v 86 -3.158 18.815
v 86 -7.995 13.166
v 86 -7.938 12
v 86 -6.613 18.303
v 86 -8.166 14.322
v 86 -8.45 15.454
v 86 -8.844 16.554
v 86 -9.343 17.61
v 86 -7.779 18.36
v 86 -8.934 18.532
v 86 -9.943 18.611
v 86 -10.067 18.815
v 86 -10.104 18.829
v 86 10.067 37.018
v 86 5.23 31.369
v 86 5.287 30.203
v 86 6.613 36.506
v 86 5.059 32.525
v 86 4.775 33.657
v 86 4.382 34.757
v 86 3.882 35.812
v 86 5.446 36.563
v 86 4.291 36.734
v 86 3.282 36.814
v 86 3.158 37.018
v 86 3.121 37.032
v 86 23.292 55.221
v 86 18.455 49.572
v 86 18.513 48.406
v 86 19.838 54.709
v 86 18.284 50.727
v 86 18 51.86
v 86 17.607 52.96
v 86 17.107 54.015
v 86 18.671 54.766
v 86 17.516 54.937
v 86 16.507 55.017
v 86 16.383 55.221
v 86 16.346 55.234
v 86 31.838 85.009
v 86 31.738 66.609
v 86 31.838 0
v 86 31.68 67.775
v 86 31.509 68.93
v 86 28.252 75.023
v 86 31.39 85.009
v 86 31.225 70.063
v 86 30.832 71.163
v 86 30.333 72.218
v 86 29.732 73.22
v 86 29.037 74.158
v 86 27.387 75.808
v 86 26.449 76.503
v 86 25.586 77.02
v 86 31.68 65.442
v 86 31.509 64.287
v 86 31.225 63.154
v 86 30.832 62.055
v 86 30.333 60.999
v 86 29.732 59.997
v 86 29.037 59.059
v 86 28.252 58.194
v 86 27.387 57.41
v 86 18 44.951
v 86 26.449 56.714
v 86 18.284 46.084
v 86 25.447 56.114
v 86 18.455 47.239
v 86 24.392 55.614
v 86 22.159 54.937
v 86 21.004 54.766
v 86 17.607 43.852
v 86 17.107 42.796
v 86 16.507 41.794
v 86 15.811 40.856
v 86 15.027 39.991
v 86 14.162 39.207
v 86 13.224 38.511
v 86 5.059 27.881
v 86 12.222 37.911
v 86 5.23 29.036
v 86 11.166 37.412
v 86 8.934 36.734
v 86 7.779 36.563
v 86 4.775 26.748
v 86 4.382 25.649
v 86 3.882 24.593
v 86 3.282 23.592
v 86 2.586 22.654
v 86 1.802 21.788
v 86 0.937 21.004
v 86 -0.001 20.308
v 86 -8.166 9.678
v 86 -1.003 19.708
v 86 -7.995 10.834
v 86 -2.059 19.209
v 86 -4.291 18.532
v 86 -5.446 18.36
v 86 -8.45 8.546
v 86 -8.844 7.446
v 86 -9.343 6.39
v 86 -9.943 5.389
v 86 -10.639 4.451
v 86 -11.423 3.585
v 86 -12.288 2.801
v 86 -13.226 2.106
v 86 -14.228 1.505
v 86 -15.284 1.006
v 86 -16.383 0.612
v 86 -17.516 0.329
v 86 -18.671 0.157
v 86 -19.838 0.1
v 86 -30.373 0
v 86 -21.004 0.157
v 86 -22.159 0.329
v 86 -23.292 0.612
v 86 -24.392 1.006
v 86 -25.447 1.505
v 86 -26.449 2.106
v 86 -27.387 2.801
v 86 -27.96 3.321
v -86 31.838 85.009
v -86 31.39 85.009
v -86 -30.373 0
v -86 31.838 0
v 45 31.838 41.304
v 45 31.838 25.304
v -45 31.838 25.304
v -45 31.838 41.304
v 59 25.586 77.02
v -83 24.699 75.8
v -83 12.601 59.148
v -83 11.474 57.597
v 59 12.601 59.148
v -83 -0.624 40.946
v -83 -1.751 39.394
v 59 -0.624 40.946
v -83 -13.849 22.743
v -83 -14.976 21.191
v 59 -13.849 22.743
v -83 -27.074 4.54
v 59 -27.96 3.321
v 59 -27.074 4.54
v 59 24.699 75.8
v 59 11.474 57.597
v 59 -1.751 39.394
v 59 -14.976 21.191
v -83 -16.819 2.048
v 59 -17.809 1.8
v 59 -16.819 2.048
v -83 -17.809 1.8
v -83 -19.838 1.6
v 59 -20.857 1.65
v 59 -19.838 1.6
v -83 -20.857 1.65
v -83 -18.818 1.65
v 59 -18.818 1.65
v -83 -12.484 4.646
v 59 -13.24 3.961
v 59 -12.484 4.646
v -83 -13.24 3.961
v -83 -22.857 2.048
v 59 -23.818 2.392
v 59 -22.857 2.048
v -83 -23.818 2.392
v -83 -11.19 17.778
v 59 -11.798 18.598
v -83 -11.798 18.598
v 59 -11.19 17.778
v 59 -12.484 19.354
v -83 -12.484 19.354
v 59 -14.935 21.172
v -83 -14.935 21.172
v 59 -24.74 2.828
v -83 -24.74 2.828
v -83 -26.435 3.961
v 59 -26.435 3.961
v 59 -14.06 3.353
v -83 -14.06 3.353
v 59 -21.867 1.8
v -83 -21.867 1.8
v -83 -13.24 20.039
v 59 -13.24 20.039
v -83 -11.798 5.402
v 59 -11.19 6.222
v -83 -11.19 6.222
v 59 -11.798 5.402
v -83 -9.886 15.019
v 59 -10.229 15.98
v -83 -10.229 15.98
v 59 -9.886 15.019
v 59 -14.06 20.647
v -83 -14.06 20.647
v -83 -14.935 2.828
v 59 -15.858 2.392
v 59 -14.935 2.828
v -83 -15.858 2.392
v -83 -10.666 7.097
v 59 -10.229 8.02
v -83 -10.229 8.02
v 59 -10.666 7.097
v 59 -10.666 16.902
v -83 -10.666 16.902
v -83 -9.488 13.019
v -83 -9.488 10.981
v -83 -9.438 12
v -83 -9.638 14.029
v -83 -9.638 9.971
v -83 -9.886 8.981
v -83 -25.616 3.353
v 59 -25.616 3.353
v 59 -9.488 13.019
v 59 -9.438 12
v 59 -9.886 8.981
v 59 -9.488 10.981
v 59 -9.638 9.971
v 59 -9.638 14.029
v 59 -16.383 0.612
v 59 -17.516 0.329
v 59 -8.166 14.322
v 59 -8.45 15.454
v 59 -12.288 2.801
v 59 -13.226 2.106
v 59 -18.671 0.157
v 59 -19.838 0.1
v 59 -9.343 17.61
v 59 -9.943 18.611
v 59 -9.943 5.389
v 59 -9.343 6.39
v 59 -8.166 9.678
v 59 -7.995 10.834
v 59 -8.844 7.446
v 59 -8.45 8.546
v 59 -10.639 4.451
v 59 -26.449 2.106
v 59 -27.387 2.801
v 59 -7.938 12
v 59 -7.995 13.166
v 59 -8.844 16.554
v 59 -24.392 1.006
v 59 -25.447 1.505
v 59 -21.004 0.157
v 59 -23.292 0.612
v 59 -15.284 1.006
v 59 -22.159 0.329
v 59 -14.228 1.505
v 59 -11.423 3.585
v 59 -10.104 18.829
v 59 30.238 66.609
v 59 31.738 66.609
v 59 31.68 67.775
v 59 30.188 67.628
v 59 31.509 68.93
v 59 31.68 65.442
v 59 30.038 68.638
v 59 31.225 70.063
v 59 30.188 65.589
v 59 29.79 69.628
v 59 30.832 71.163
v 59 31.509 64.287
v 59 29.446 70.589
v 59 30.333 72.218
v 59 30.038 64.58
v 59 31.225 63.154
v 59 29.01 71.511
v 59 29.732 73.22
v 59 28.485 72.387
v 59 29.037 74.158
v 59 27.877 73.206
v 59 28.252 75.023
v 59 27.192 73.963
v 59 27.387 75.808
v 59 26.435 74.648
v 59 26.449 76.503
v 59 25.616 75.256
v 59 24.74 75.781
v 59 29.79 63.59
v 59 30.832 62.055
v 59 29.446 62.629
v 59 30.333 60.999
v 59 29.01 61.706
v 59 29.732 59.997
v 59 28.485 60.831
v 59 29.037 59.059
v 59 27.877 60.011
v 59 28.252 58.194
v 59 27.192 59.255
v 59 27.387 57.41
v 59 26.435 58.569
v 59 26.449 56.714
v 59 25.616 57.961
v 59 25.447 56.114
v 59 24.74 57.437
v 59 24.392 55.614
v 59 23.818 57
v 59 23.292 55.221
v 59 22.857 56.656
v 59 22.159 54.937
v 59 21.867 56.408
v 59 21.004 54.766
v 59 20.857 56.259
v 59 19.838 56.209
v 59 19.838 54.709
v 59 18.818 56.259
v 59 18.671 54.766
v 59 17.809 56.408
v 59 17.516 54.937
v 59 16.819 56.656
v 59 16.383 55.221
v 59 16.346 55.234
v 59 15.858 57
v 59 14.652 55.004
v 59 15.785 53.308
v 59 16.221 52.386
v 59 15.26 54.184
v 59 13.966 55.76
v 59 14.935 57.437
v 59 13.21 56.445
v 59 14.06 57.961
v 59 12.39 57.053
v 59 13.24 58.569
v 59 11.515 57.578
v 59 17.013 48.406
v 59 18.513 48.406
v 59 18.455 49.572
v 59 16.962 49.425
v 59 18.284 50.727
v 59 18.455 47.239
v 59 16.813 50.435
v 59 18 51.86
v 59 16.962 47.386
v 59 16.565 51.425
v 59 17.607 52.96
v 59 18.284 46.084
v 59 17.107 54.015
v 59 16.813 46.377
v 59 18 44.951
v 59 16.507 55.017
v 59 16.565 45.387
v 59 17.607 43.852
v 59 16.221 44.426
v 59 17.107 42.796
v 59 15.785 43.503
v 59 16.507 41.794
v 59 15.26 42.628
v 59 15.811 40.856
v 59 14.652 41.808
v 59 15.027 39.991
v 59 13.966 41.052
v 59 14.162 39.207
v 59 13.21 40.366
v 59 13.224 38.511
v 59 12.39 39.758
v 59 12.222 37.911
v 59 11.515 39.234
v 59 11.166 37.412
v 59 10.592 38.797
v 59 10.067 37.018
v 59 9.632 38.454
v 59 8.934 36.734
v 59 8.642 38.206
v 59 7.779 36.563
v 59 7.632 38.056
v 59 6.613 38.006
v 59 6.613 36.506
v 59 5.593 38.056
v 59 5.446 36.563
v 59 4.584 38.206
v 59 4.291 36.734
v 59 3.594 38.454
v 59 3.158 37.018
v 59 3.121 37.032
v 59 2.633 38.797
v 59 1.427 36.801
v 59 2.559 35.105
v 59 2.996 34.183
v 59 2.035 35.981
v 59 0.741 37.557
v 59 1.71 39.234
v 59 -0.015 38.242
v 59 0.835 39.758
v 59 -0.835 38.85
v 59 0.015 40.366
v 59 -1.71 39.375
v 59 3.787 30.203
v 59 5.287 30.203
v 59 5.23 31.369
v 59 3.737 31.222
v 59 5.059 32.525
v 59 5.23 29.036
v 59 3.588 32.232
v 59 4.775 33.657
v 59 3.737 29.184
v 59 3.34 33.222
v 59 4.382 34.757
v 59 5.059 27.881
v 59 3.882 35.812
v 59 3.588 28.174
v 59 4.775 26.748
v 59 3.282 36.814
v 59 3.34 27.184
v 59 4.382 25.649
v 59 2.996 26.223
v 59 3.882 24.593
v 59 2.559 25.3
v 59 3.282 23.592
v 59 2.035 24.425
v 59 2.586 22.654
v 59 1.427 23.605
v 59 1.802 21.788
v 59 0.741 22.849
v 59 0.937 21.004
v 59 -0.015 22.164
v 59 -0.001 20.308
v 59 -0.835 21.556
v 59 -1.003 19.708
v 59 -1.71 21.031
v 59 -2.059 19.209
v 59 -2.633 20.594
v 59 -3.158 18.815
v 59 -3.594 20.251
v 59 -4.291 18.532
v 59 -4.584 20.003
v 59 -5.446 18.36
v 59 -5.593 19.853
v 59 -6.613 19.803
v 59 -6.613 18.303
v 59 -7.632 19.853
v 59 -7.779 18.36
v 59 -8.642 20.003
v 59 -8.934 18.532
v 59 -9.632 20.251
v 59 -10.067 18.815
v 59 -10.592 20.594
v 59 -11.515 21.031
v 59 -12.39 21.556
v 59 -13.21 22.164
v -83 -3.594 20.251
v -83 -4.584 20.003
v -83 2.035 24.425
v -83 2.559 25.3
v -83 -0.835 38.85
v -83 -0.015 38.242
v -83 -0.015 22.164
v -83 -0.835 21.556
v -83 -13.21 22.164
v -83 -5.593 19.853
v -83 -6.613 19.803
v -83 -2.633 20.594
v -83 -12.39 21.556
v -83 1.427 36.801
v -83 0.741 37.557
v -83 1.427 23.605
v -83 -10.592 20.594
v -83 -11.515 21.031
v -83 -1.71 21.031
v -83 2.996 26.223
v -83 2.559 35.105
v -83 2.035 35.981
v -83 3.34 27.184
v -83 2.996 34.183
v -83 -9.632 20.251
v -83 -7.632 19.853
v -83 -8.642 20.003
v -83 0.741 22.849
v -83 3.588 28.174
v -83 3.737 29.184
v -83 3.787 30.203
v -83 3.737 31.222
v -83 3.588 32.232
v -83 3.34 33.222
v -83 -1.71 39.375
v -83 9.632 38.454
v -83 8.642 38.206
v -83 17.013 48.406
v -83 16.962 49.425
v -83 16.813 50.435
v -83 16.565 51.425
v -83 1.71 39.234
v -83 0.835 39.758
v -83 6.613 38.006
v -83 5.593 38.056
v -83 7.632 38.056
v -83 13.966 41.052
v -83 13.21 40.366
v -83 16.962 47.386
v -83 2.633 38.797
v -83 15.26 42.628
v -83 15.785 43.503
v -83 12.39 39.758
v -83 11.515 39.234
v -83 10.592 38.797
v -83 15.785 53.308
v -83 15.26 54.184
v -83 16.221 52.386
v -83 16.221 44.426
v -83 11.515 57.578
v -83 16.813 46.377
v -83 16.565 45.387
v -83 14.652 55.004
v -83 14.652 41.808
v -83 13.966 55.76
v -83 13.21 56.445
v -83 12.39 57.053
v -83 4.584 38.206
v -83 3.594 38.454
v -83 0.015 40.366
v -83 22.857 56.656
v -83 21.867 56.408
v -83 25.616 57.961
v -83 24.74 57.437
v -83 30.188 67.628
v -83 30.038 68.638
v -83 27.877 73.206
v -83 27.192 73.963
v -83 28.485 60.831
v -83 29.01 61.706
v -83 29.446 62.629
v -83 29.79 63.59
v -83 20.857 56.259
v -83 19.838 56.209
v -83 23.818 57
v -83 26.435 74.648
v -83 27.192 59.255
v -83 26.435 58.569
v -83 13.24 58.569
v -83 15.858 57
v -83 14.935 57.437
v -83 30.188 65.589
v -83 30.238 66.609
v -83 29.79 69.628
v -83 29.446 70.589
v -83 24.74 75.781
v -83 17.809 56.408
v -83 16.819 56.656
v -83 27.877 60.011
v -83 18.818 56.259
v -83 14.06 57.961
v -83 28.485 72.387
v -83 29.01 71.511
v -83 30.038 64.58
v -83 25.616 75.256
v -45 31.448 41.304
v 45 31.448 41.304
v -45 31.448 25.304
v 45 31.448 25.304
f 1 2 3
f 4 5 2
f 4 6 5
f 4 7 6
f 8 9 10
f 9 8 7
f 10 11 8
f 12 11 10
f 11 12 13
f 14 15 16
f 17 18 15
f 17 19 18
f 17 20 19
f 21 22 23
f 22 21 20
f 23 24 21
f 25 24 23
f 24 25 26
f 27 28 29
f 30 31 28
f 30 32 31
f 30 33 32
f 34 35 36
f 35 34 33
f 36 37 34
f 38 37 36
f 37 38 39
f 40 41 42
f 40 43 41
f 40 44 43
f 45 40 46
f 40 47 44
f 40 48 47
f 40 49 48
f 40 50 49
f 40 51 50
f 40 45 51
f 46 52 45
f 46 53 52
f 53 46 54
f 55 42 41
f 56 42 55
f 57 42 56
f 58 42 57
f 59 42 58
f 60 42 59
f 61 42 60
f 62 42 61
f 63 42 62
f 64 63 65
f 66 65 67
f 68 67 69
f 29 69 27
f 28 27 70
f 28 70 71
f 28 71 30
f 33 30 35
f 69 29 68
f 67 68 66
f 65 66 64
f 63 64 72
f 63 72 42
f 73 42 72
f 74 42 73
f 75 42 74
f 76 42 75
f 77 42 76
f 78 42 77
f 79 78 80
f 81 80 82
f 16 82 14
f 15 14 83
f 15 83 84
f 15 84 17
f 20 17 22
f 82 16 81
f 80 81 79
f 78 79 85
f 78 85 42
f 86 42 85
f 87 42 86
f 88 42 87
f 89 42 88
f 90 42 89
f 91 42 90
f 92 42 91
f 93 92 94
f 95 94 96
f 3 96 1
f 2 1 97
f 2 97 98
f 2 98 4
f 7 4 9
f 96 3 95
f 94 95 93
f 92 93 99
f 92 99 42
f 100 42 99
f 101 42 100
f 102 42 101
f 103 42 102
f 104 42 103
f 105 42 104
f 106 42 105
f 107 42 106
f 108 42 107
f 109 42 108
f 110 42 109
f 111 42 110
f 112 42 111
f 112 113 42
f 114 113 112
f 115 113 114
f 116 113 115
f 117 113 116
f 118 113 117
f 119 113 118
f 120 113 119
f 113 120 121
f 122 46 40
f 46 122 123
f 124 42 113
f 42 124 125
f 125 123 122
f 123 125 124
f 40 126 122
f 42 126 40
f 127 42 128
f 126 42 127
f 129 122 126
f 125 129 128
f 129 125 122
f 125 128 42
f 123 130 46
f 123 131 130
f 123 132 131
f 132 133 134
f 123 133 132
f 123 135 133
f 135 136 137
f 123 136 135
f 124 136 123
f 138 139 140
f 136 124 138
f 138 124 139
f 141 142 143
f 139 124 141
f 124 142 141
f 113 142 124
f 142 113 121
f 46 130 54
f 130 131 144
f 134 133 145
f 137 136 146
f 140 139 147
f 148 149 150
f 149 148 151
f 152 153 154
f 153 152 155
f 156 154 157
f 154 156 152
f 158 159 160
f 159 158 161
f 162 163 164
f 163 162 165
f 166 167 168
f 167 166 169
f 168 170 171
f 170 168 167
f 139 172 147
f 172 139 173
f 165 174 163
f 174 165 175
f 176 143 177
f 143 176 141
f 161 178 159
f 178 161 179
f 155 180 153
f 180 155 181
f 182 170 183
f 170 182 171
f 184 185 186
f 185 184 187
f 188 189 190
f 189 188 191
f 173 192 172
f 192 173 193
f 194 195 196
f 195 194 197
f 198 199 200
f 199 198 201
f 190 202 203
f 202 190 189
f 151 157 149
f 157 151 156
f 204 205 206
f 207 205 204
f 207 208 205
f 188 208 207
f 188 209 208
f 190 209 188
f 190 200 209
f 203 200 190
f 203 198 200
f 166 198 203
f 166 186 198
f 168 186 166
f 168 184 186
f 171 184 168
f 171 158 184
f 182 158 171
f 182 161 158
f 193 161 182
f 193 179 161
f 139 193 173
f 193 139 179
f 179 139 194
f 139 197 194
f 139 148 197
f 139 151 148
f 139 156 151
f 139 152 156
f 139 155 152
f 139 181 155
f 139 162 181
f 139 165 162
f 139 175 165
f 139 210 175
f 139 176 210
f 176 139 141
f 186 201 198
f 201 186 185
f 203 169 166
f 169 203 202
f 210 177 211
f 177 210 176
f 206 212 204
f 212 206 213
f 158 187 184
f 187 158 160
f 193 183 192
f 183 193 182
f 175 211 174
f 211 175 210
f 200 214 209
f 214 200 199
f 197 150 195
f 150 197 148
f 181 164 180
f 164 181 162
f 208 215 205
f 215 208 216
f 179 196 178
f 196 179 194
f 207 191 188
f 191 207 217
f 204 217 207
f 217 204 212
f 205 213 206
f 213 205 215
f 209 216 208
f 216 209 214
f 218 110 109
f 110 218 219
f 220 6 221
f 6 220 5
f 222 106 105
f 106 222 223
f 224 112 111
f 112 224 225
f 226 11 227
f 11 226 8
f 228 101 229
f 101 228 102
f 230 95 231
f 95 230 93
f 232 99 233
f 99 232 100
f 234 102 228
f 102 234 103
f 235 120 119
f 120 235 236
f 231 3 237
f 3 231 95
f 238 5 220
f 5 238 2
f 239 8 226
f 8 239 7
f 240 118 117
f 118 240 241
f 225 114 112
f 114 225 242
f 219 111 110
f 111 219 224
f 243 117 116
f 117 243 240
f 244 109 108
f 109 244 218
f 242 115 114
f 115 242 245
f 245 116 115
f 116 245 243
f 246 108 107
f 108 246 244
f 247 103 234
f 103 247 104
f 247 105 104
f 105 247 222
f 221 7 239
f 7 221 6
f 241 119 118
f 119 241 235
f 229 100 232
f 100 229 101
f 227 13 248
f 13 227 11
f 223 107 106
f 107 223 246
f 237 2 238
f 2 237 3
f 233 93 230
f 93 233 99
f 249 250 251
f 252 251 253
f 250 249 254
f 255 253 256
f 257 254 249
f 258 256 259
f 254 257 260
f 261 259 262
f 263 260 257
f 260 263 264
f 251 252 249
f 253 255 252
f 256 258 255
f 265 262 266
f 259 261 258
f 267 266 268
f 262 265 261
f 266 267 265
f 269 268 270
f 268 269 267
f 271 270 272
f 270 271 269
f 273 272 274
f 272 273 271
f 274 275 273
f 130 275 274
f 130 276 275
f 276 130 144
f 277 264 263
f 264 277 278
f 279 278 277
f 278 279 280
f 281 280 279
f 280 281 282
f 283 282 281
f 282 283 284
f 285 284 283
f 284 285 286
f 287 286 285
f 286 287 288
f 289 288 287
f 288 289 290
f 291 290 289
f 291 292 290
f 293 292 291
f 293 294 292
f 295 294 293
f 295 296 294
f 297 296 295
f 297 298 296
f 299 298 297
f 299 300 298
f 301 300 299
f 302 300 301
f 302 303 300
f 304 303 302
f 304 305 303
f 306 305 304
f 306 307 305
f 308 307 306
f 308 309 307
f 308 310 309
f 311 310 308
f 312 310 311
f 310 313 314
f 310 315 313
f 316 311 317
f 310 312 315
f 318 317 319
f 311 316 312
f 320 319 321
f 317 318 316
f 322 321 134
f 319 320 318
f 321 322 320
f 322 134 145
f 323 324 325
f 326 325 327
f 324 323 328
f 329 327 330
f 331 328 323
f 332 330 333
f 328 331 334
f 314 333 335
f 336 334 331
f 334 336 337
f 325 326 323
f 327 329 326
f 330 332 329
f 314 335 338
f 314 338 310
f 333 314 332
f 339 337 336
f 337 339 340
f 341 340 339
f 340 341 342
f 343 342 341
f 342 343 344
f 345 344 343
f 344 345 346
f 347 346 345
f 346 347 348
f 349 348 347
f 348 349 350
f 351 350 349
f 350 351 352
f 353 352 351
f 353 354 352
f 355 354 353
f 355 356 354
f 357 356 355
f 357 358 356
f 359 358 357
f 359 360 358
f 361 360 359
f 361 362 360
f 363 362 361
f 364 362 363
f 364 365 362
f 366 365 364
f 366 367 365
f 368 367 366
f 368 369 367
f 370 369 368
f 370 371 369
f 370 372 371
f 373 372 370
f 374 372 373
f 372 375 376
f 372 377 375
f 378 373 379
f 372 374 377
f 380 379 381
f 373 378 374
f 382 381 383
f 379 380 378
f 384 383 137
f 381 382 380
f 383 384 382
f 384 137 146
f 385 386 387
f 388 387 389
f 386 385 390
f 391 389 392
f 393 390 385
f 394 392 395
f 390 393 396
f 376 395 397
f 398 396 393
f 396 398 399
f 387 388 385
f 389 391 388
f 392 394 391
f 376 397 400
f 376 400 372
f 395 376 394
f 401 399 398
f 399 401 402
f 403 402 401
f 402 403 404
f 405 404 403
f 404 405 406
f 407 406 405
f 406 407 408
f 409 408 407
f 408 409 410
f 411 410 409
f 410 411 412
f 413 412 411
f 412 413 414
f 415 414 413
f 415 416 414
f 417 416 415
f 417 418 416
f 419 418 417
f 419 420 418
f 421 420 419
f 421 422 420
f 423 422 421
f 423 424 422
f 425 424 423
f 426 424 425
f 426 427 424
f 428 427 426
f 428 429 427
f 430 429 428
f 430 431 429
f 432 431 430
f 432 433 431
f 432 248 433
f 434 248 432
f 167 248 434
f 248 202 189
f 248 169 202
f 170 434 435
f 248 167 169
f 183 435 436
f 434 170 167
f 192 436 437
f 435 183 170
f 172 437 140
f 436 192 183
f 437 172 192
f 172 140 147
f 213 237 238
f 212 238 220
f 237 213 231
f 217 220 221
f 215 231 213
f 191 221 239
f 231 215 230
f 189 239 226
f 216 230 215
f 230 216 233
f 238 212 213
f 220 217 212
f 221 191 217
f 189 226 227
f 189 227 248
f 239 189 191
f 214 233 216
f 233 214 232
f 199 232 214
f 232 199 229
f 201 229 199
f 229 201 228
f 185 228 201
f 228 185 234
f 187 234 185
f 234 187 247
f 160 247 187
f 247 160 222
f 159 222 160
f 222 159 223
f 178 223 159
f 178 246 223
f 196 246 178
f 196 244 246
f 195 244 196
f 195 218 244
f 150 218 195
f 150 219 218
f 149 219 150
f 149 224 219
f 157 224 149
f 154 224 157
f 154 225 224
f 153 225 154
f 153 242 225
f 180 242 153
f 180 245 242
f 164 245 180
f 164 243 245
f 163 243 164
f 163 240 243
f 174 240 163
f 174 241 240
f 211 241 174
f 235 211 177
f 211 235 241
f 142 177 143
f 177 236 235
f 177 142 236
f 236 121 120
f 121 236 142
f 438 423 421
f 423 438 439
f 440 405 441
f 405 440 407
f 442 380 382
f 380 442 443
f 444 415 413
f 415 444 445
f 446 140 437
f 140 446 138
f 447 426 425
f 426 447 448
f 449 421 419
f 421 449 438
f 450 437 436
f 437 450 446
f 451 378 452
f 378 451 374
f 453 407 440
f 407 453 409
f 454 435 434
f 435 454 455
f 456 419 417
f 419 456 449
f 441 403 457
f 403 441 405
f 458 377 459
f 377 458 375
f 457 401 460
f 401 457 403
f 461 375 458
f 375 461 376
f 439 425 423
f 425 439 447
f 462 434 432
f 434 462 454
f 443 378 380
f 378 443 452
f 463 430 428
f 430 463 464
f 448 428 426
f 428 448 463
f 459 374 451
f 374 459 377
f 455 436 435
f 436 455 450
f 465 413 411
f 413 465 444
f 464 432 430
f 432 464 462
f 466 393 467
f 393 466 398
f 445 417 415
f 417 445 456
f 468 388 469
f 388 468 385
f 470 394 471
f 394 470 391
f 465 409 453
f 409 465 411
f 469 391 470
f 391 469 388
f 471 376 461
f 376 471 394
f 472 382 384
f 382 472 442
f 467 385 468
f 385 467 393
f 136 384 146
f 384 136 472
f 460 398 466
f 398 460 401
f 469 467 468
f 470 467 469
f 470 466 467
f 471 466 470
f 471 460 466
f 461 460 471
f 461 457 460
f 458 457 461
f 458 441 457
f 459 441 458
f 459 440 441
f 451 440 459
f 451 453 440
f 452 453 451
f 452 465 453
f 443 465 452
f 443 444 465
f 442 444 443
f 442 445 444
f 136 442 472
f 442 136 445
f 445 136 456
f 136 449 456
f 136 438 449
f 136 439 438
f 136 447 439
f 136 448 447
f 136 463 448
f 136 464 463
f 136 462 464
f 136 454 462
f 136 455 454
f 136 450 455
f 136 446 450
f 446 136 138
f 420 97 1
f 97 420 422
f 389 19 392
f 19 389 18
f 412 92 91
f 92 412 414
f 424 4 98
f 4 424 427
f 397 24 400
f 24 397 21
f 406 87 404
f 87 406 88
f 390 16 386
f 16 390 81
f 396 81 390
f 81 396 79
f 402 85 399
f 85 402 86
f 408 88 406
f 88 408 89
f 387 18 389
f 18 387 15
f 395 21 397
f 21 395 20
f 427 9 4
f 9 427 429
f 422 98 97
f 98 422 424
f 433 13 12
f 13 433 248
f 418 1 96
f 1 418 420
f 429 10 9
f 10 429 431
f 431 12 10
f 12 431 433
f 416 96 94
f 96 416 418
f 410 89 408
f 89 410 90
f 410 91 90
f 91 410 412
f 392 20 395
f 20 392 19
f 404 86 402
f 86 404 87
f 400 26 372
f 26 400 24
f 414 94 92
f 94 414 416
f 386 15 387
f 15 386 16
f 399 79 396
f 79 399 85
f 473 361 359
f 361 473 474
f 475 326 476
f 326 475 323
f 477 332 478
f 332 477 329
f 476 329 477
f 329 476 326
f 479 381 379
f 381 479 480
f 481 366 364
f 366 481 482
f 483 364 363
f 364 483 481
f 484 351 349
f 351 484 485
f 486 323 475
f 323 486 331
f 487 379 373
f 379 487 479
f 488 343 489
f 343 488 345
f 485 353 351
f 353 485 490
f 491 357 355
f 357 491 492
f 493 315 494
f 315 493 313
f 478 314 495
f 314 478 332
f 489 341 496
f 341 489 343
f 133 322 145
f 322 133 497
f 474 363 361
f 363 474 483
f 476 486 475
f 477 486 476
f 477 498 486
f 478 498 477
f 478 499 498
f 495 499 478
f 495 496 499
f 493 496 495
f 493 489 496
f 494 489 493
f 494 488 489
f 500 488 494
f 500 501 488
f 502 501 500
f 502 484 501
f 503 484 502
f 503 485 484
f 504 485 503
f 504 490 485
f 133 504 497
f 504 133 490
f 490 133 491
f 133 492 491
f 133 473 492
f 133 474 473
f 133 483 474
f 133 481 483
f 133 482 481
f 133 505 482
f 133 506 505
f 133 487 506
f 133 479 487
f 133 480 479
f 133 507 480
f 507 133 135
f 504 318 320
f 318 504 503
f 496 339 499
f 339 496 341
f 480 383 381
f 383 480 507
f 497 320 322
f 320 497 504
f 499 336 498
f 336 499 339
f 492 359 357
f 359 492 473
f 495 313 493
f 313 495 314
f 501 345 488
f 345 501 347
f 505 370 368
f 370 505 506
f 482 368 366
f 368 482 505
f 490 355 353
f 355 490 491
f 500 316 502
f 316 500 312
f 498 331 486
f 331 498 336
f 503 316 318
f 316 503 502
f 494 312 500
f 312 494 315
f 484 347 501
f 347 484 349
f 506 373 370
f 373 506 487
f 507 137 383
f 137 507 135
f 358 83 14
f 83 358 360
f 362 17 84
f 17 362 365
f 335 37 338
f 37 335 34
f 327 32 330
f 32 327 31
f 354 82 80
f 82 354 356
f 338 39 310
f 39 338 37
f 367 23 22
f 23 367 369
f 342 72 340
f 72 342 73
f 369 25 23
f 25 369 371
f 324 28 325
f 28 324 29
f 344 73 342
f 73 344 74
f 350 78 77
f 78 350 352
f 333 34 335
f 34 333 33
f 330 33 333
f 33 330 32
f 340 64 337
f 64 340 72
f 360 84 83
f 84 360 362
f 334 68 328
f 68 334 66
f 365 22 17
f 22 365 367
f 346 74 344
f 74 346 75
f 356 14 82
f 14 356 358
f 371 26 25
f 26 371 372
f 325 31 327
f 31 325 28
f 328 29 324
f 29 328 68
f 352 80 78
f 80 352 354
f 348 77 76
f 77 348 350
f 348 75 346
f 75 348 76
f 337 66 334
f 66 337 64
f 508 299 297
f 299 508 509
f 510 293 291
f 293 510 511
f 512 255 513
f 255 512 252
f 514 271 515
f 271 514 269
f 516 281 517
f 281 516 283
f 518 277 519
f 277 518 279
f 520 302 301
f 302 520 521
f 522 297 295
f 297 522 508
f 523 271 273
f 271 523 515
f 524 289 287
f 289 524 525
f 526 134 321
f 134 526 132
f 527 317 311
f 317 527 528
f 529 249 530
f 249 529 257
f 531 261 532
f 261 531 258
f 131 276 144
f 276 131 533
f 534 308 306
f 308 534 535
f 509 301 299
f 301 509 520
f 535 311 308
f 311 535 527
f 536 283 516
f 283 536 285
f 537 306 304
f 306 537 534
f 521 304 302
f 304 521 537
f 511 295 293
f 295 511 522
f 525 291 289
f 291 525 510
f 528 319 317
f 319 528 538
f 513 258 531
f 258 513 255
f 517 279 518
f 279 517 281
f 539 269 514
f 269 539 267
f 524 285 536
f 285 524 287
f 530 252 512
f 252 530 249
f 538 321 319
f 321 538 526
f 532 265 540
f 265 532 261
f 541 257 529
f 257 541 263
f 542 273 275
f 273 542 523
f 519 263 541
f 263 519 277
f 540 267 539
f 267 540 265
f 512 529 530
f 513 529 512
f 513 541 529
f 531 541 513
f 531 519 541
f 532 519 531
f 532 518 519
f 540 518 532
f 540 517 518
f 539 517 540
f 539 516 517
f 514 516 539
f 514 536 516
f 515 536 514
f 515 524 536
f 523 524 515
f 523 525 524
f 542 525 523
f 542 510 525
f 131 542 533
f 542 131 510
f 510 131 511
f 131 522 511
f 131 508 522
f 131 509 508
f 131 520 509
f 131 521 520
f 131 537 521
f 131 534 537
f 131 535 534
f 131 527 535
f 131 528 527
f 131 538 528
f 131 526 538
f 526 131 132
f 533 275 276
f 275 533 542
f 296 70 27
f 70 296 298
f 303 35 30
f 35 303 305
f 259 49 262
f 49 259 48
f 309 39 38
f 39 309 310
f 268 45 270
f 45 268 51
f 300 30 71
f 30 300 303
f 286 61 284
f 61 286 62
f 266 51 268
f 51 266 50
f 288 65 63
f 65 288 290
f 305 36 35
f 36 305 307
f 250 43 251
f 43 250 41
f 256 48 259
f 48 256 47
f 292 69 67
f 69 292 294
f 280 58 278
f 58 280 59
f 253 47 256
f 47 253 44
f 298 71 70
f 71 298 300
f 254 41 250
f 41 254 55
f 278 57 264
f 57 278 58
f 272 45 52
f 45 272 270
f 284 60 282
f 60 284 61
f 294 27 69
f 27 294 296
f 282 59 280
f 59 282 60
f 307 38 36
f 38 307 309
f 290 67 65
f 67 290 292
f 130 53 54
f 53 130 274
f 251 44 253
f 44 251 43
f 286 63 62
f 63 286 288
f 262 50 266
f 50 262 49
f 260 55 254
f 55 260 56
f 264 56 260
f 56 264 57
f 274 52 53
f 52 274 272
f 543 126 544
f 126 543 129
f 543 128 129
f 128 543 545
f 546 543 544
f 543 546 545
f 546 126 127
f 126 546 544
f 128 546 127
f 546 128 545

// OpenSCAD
// file: common.scad
// ============================================================
// common.scad — shared parameters + modules for all designs
// LOCKED PEN SPECIFICATION (do not change)
// ============================================================
PEN_L = 165;      // pen length (mm)
PEN_A = 17;       // pen cross-section minor
PEN_B = 20;       // pen cross-section major (used as diameter envelope)
CLEAR = 0.4;      // fit clearance
WALL  = 1.6;      // minimum wall thickness

$fn = 64;

RCH = PEN_B/2 + CLEAR;   // = 10.4  channel radius
EPS = 0.01;

// --- open-top U trough cut, axis along X, centered at local origin -----------
// Removes a lower half-cylinder of radius r plus a full-width vertical slot
// upward, so the channel is open at the top (no ceiling -> no overhang).
module trough_cut(len, r=RCH, top=80) {
    union() {
        rotate([0,90,0]) cylinder(h=len, r=r, center=true);
        translate([0,0,top/2]) cube([len, 2*r, top], center=true); // slot upward
    }
}

// --- teardrop hole, axis along X, centered at local origin --------------------
// 45-degree self-supporting apex pointing +Z so a horizontal bore can print
// without support.
module teardrop_cut(len, r=RCH) {
    rotate([0,90,0])
        linear_extrude(height=len, center=true)
            union() {
                circle(r=r);
                polygon([[ 0.7071*r, 0.7071*r],
                         [ 0,         1.4142*r],
                         [-0.7071*r,  0.7071*r]]);
            }
}

// --- dial relief: widened open-top pocket at one channel end -----------------
// place at the +X or -X end of a channel so the dose dial clears / can be turned
module dial_relief(end_x, r=RCH+2.2, len=28, top=80) {
    translate([end_x, 0, 0]) trough_cut(len, r, top);
}
// file: rack_lib.scad
// rack_lib.scad — parametric reclined "toast-rack" for horizontal pens
// One module, driven by params, so each design iteration is an attributable
// change. Pens load from the top-front long face (radially into each groove);
// the ramp faces up so it prints support-free.
include <common.scad>

LBLK = PEN_L + 7;   // 172  overall body length (< 177.8), leaves end walls

// n       : number of pens
// phi     : ramp angle from horizontal (deg) — steeper = narrower + more top-load
// P       : along-ramp center spacing (>= 22.4 so pens don't intersect)
// lip     : grooves cut this far below the ramp plane -> snap-retention lip
// rr      : dial-relief radius (wider mouth at +X end)
// rlen    : dial-relief length along X
// endwall : solid wall thickness left at each end of a groove (containment)
// scoop   : add a thumb-scallop at the +X mouth for easy pen removal
// plate   : recess a nameplate/label pocket into the flat back face
// vials   : number of vertical vial wells bored into the back-top shelf (0 = none)
// flex     : number of relief gaps cut across each lip -> short spring-fingers
//            that flex outward, so a rigid pen snaps in with low force
module rack(n=4, phi=58, P=22.5, lip=2.5, rr=RCH+1.5, rlen=30,
            endwall=3, scoop=false, plate=false, vials=0, flex=0) {
    cph = cos(phi);
    sph = sin(phi);
    yc  = [for (i=[0:n-1]) (-(n-1)/2 + i) * P * cph];
    zc  = [for (i=[0:n-1]) (RCH + WALL) + i * P * sph];

    ymin = yc[0]   - RCH - WALL;
    ymax = yc[n-1] + RCH + WALL;
    Wb   = ymax - ymin;
    ycen = (ymax + ymin) / 2;
    Hbox = zc[n-1] + RCH + (vials > 0 ? 16 : 8);   // extra back-top stock for wells
    glen = LBLK - 2 * endwall;
    relief_cx = LBLK/2 - rlen/2 + 3;               // pokes ~3 past +X face
    big = 800;

    difference() {
        // ---- solid wedge: box with its top sheared off along the ramp plane ----
        difference() {
            translate([0, ycen, Hbox/2]) cube([LBLK, Wb, Hbox], center=true);
            translate([0, yc[0], zc[0] + lip])
                rotate([phi, 0, 0])
                    translate([0, 0, big/2]) cube([LBLK + 2, big, big], center=true);
        }

        // ---- grooves + dial relief (+ optional thumb scoop) ----
        for (i = [0:n-1]) {
            translate([0, yc[i], zc[i]])                       // main groove
                rotate([0,90,0]) cylinder(h=glen, r=RCH, center=true);
            translate([relief_cx, yc[i], zc[i]])               // dial relief mouth
                rotate([0,90,0]) cylinder(h=rlen, r=rr, center=true);
            if (scoop)
                translate([LBLK/2, yc[i] - 0.30*RCH, zc[i]]) sphere(r=7.5);
            // flex-relief gaps: notch the lip (above centerline) at intervals
            if (flex > 0)
                for (k = [1:flex])
                    translate([-LBLK/2 + k*LBLK/(flex+1), yc[i], zc[i] + RCH])
                        cube([3, 2*RCH + 6, 2*RCH], center=true);
        }

        // ---- optional vertical vial wells in the back-top shelf ----
        if (vials > 0) {
            wy = ymax - 9;                                     // along the back edge
            for (k = [0:vials-1]) {
                wx = -((vials-1)/2)*44 + k*44;
                translate([wx, wy, Hbox - 22 + EPS])
                    cylinder(h = 22, d = 14);
            }
        }

        // ---- optional nameplate recess in the flat back face ----
        if (plate)
            translate([0, ymax + EPS, zc[n-1]*0.5])
                rotate([90,0,0]) translate([0,0,-0.8])
                    linear_extrude(1.2) square([90, 16], center=true);
    }
}
// main file
// Iter3 — clinic: shallower 54deg recline (dials more visible) + scoop + back nameplate.
include <rack_lib.scad>
rack(n=4, phi=54, P=22.5, lip=2.5, endwall=3, scoop=true, plate=true);
